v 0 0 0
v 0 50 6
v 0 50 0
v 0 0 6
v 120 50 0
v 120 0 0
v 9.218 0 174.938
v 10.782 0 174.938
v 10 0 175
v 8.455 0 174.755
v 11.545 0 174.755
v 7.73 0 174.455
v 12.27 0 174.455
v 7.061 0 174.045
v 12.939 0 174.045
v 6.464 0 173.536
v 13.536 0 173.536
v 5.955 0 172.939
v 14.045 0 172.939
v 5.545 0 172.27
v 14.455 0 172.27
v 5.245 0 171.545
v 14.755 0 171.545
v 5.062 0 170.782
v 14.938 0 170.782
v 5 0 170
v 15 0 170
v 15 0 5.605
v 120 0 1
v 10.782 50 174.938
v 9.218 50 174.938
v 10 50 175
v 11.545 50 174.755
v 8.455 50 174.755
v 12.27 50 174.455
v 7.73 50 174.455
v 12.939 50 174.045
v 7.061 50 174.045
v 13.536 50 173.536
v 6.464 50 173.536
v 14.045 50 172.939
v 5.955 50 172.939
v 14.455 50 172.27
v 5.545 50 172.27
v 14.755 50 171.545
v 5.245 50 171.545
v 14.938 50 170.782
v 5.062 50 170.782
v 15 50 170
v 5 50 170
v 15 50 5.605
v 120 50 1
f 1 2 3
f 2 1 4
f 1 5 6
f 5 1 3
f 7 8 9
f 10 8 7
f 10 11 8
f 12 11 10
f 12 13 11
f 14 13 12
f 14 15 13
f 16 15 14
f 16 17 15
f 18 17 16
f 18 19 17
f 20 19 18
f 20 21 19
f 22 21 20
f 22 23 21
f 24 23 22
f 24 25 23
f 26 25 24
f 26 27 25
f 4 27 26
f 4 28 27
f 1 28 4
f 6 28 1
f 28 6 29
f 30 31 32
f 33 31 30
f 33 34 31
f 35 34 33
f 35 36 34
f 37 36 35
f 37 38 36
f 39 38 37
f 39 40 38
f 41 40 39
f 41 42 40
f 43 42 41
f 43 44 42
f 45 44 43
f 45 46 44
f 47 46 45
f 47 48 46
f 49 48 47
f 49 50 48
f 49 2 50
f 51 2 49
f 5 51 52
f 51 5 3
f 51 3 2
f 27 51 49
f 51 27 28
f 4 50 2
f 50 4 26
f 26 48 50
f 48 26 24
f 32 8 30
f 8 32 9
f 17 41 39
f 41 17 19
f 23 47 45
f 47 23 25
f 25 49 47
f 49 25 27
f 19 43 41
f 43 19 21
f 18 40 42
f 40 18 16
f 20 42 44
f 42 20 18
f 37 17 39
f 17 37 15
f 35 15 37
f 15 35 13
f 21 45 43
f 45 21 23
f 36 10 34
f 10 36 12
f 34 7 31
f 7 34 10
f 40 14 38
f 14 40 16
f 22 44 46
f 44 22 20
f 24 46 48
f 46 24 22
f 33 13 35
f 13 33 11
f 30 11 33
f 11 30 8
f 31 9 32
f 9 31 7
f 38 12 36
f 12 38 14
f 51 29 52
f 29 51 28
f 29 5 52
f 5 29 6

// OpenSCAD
// Book stand by Oliv'

// Width of stand
width = 120;
// Height of the stand
height = 170;
// Depth of the stand
depth = 50;
// Max fit height
wallFeet = 6;
// Max bodywidth
wallBody = 10;

// Rendering parameter
$fn = 40;

module comicsBookStand() {
  union() {
    // Body
    hull() {
      cube( [wallBody*1.5, depth, wallFeet] );
      translate( [wallBody*0.5, 0, height-wallBody] )
        cube( [wallBody, depth, wallBody] );
    }
    translate( [wallBody, 0, height]) rotate( [-90, 0, 0] )
      cylinder( r=wallBody/2, h=depth);
    // Feet
    hull() {
      cube( [wallFeet, depth, wallFeet] );
      translate( [width-1, 0, 0] )
        cube( [1, depth, 1] );
    }
  }
}

comicsBookStand();
